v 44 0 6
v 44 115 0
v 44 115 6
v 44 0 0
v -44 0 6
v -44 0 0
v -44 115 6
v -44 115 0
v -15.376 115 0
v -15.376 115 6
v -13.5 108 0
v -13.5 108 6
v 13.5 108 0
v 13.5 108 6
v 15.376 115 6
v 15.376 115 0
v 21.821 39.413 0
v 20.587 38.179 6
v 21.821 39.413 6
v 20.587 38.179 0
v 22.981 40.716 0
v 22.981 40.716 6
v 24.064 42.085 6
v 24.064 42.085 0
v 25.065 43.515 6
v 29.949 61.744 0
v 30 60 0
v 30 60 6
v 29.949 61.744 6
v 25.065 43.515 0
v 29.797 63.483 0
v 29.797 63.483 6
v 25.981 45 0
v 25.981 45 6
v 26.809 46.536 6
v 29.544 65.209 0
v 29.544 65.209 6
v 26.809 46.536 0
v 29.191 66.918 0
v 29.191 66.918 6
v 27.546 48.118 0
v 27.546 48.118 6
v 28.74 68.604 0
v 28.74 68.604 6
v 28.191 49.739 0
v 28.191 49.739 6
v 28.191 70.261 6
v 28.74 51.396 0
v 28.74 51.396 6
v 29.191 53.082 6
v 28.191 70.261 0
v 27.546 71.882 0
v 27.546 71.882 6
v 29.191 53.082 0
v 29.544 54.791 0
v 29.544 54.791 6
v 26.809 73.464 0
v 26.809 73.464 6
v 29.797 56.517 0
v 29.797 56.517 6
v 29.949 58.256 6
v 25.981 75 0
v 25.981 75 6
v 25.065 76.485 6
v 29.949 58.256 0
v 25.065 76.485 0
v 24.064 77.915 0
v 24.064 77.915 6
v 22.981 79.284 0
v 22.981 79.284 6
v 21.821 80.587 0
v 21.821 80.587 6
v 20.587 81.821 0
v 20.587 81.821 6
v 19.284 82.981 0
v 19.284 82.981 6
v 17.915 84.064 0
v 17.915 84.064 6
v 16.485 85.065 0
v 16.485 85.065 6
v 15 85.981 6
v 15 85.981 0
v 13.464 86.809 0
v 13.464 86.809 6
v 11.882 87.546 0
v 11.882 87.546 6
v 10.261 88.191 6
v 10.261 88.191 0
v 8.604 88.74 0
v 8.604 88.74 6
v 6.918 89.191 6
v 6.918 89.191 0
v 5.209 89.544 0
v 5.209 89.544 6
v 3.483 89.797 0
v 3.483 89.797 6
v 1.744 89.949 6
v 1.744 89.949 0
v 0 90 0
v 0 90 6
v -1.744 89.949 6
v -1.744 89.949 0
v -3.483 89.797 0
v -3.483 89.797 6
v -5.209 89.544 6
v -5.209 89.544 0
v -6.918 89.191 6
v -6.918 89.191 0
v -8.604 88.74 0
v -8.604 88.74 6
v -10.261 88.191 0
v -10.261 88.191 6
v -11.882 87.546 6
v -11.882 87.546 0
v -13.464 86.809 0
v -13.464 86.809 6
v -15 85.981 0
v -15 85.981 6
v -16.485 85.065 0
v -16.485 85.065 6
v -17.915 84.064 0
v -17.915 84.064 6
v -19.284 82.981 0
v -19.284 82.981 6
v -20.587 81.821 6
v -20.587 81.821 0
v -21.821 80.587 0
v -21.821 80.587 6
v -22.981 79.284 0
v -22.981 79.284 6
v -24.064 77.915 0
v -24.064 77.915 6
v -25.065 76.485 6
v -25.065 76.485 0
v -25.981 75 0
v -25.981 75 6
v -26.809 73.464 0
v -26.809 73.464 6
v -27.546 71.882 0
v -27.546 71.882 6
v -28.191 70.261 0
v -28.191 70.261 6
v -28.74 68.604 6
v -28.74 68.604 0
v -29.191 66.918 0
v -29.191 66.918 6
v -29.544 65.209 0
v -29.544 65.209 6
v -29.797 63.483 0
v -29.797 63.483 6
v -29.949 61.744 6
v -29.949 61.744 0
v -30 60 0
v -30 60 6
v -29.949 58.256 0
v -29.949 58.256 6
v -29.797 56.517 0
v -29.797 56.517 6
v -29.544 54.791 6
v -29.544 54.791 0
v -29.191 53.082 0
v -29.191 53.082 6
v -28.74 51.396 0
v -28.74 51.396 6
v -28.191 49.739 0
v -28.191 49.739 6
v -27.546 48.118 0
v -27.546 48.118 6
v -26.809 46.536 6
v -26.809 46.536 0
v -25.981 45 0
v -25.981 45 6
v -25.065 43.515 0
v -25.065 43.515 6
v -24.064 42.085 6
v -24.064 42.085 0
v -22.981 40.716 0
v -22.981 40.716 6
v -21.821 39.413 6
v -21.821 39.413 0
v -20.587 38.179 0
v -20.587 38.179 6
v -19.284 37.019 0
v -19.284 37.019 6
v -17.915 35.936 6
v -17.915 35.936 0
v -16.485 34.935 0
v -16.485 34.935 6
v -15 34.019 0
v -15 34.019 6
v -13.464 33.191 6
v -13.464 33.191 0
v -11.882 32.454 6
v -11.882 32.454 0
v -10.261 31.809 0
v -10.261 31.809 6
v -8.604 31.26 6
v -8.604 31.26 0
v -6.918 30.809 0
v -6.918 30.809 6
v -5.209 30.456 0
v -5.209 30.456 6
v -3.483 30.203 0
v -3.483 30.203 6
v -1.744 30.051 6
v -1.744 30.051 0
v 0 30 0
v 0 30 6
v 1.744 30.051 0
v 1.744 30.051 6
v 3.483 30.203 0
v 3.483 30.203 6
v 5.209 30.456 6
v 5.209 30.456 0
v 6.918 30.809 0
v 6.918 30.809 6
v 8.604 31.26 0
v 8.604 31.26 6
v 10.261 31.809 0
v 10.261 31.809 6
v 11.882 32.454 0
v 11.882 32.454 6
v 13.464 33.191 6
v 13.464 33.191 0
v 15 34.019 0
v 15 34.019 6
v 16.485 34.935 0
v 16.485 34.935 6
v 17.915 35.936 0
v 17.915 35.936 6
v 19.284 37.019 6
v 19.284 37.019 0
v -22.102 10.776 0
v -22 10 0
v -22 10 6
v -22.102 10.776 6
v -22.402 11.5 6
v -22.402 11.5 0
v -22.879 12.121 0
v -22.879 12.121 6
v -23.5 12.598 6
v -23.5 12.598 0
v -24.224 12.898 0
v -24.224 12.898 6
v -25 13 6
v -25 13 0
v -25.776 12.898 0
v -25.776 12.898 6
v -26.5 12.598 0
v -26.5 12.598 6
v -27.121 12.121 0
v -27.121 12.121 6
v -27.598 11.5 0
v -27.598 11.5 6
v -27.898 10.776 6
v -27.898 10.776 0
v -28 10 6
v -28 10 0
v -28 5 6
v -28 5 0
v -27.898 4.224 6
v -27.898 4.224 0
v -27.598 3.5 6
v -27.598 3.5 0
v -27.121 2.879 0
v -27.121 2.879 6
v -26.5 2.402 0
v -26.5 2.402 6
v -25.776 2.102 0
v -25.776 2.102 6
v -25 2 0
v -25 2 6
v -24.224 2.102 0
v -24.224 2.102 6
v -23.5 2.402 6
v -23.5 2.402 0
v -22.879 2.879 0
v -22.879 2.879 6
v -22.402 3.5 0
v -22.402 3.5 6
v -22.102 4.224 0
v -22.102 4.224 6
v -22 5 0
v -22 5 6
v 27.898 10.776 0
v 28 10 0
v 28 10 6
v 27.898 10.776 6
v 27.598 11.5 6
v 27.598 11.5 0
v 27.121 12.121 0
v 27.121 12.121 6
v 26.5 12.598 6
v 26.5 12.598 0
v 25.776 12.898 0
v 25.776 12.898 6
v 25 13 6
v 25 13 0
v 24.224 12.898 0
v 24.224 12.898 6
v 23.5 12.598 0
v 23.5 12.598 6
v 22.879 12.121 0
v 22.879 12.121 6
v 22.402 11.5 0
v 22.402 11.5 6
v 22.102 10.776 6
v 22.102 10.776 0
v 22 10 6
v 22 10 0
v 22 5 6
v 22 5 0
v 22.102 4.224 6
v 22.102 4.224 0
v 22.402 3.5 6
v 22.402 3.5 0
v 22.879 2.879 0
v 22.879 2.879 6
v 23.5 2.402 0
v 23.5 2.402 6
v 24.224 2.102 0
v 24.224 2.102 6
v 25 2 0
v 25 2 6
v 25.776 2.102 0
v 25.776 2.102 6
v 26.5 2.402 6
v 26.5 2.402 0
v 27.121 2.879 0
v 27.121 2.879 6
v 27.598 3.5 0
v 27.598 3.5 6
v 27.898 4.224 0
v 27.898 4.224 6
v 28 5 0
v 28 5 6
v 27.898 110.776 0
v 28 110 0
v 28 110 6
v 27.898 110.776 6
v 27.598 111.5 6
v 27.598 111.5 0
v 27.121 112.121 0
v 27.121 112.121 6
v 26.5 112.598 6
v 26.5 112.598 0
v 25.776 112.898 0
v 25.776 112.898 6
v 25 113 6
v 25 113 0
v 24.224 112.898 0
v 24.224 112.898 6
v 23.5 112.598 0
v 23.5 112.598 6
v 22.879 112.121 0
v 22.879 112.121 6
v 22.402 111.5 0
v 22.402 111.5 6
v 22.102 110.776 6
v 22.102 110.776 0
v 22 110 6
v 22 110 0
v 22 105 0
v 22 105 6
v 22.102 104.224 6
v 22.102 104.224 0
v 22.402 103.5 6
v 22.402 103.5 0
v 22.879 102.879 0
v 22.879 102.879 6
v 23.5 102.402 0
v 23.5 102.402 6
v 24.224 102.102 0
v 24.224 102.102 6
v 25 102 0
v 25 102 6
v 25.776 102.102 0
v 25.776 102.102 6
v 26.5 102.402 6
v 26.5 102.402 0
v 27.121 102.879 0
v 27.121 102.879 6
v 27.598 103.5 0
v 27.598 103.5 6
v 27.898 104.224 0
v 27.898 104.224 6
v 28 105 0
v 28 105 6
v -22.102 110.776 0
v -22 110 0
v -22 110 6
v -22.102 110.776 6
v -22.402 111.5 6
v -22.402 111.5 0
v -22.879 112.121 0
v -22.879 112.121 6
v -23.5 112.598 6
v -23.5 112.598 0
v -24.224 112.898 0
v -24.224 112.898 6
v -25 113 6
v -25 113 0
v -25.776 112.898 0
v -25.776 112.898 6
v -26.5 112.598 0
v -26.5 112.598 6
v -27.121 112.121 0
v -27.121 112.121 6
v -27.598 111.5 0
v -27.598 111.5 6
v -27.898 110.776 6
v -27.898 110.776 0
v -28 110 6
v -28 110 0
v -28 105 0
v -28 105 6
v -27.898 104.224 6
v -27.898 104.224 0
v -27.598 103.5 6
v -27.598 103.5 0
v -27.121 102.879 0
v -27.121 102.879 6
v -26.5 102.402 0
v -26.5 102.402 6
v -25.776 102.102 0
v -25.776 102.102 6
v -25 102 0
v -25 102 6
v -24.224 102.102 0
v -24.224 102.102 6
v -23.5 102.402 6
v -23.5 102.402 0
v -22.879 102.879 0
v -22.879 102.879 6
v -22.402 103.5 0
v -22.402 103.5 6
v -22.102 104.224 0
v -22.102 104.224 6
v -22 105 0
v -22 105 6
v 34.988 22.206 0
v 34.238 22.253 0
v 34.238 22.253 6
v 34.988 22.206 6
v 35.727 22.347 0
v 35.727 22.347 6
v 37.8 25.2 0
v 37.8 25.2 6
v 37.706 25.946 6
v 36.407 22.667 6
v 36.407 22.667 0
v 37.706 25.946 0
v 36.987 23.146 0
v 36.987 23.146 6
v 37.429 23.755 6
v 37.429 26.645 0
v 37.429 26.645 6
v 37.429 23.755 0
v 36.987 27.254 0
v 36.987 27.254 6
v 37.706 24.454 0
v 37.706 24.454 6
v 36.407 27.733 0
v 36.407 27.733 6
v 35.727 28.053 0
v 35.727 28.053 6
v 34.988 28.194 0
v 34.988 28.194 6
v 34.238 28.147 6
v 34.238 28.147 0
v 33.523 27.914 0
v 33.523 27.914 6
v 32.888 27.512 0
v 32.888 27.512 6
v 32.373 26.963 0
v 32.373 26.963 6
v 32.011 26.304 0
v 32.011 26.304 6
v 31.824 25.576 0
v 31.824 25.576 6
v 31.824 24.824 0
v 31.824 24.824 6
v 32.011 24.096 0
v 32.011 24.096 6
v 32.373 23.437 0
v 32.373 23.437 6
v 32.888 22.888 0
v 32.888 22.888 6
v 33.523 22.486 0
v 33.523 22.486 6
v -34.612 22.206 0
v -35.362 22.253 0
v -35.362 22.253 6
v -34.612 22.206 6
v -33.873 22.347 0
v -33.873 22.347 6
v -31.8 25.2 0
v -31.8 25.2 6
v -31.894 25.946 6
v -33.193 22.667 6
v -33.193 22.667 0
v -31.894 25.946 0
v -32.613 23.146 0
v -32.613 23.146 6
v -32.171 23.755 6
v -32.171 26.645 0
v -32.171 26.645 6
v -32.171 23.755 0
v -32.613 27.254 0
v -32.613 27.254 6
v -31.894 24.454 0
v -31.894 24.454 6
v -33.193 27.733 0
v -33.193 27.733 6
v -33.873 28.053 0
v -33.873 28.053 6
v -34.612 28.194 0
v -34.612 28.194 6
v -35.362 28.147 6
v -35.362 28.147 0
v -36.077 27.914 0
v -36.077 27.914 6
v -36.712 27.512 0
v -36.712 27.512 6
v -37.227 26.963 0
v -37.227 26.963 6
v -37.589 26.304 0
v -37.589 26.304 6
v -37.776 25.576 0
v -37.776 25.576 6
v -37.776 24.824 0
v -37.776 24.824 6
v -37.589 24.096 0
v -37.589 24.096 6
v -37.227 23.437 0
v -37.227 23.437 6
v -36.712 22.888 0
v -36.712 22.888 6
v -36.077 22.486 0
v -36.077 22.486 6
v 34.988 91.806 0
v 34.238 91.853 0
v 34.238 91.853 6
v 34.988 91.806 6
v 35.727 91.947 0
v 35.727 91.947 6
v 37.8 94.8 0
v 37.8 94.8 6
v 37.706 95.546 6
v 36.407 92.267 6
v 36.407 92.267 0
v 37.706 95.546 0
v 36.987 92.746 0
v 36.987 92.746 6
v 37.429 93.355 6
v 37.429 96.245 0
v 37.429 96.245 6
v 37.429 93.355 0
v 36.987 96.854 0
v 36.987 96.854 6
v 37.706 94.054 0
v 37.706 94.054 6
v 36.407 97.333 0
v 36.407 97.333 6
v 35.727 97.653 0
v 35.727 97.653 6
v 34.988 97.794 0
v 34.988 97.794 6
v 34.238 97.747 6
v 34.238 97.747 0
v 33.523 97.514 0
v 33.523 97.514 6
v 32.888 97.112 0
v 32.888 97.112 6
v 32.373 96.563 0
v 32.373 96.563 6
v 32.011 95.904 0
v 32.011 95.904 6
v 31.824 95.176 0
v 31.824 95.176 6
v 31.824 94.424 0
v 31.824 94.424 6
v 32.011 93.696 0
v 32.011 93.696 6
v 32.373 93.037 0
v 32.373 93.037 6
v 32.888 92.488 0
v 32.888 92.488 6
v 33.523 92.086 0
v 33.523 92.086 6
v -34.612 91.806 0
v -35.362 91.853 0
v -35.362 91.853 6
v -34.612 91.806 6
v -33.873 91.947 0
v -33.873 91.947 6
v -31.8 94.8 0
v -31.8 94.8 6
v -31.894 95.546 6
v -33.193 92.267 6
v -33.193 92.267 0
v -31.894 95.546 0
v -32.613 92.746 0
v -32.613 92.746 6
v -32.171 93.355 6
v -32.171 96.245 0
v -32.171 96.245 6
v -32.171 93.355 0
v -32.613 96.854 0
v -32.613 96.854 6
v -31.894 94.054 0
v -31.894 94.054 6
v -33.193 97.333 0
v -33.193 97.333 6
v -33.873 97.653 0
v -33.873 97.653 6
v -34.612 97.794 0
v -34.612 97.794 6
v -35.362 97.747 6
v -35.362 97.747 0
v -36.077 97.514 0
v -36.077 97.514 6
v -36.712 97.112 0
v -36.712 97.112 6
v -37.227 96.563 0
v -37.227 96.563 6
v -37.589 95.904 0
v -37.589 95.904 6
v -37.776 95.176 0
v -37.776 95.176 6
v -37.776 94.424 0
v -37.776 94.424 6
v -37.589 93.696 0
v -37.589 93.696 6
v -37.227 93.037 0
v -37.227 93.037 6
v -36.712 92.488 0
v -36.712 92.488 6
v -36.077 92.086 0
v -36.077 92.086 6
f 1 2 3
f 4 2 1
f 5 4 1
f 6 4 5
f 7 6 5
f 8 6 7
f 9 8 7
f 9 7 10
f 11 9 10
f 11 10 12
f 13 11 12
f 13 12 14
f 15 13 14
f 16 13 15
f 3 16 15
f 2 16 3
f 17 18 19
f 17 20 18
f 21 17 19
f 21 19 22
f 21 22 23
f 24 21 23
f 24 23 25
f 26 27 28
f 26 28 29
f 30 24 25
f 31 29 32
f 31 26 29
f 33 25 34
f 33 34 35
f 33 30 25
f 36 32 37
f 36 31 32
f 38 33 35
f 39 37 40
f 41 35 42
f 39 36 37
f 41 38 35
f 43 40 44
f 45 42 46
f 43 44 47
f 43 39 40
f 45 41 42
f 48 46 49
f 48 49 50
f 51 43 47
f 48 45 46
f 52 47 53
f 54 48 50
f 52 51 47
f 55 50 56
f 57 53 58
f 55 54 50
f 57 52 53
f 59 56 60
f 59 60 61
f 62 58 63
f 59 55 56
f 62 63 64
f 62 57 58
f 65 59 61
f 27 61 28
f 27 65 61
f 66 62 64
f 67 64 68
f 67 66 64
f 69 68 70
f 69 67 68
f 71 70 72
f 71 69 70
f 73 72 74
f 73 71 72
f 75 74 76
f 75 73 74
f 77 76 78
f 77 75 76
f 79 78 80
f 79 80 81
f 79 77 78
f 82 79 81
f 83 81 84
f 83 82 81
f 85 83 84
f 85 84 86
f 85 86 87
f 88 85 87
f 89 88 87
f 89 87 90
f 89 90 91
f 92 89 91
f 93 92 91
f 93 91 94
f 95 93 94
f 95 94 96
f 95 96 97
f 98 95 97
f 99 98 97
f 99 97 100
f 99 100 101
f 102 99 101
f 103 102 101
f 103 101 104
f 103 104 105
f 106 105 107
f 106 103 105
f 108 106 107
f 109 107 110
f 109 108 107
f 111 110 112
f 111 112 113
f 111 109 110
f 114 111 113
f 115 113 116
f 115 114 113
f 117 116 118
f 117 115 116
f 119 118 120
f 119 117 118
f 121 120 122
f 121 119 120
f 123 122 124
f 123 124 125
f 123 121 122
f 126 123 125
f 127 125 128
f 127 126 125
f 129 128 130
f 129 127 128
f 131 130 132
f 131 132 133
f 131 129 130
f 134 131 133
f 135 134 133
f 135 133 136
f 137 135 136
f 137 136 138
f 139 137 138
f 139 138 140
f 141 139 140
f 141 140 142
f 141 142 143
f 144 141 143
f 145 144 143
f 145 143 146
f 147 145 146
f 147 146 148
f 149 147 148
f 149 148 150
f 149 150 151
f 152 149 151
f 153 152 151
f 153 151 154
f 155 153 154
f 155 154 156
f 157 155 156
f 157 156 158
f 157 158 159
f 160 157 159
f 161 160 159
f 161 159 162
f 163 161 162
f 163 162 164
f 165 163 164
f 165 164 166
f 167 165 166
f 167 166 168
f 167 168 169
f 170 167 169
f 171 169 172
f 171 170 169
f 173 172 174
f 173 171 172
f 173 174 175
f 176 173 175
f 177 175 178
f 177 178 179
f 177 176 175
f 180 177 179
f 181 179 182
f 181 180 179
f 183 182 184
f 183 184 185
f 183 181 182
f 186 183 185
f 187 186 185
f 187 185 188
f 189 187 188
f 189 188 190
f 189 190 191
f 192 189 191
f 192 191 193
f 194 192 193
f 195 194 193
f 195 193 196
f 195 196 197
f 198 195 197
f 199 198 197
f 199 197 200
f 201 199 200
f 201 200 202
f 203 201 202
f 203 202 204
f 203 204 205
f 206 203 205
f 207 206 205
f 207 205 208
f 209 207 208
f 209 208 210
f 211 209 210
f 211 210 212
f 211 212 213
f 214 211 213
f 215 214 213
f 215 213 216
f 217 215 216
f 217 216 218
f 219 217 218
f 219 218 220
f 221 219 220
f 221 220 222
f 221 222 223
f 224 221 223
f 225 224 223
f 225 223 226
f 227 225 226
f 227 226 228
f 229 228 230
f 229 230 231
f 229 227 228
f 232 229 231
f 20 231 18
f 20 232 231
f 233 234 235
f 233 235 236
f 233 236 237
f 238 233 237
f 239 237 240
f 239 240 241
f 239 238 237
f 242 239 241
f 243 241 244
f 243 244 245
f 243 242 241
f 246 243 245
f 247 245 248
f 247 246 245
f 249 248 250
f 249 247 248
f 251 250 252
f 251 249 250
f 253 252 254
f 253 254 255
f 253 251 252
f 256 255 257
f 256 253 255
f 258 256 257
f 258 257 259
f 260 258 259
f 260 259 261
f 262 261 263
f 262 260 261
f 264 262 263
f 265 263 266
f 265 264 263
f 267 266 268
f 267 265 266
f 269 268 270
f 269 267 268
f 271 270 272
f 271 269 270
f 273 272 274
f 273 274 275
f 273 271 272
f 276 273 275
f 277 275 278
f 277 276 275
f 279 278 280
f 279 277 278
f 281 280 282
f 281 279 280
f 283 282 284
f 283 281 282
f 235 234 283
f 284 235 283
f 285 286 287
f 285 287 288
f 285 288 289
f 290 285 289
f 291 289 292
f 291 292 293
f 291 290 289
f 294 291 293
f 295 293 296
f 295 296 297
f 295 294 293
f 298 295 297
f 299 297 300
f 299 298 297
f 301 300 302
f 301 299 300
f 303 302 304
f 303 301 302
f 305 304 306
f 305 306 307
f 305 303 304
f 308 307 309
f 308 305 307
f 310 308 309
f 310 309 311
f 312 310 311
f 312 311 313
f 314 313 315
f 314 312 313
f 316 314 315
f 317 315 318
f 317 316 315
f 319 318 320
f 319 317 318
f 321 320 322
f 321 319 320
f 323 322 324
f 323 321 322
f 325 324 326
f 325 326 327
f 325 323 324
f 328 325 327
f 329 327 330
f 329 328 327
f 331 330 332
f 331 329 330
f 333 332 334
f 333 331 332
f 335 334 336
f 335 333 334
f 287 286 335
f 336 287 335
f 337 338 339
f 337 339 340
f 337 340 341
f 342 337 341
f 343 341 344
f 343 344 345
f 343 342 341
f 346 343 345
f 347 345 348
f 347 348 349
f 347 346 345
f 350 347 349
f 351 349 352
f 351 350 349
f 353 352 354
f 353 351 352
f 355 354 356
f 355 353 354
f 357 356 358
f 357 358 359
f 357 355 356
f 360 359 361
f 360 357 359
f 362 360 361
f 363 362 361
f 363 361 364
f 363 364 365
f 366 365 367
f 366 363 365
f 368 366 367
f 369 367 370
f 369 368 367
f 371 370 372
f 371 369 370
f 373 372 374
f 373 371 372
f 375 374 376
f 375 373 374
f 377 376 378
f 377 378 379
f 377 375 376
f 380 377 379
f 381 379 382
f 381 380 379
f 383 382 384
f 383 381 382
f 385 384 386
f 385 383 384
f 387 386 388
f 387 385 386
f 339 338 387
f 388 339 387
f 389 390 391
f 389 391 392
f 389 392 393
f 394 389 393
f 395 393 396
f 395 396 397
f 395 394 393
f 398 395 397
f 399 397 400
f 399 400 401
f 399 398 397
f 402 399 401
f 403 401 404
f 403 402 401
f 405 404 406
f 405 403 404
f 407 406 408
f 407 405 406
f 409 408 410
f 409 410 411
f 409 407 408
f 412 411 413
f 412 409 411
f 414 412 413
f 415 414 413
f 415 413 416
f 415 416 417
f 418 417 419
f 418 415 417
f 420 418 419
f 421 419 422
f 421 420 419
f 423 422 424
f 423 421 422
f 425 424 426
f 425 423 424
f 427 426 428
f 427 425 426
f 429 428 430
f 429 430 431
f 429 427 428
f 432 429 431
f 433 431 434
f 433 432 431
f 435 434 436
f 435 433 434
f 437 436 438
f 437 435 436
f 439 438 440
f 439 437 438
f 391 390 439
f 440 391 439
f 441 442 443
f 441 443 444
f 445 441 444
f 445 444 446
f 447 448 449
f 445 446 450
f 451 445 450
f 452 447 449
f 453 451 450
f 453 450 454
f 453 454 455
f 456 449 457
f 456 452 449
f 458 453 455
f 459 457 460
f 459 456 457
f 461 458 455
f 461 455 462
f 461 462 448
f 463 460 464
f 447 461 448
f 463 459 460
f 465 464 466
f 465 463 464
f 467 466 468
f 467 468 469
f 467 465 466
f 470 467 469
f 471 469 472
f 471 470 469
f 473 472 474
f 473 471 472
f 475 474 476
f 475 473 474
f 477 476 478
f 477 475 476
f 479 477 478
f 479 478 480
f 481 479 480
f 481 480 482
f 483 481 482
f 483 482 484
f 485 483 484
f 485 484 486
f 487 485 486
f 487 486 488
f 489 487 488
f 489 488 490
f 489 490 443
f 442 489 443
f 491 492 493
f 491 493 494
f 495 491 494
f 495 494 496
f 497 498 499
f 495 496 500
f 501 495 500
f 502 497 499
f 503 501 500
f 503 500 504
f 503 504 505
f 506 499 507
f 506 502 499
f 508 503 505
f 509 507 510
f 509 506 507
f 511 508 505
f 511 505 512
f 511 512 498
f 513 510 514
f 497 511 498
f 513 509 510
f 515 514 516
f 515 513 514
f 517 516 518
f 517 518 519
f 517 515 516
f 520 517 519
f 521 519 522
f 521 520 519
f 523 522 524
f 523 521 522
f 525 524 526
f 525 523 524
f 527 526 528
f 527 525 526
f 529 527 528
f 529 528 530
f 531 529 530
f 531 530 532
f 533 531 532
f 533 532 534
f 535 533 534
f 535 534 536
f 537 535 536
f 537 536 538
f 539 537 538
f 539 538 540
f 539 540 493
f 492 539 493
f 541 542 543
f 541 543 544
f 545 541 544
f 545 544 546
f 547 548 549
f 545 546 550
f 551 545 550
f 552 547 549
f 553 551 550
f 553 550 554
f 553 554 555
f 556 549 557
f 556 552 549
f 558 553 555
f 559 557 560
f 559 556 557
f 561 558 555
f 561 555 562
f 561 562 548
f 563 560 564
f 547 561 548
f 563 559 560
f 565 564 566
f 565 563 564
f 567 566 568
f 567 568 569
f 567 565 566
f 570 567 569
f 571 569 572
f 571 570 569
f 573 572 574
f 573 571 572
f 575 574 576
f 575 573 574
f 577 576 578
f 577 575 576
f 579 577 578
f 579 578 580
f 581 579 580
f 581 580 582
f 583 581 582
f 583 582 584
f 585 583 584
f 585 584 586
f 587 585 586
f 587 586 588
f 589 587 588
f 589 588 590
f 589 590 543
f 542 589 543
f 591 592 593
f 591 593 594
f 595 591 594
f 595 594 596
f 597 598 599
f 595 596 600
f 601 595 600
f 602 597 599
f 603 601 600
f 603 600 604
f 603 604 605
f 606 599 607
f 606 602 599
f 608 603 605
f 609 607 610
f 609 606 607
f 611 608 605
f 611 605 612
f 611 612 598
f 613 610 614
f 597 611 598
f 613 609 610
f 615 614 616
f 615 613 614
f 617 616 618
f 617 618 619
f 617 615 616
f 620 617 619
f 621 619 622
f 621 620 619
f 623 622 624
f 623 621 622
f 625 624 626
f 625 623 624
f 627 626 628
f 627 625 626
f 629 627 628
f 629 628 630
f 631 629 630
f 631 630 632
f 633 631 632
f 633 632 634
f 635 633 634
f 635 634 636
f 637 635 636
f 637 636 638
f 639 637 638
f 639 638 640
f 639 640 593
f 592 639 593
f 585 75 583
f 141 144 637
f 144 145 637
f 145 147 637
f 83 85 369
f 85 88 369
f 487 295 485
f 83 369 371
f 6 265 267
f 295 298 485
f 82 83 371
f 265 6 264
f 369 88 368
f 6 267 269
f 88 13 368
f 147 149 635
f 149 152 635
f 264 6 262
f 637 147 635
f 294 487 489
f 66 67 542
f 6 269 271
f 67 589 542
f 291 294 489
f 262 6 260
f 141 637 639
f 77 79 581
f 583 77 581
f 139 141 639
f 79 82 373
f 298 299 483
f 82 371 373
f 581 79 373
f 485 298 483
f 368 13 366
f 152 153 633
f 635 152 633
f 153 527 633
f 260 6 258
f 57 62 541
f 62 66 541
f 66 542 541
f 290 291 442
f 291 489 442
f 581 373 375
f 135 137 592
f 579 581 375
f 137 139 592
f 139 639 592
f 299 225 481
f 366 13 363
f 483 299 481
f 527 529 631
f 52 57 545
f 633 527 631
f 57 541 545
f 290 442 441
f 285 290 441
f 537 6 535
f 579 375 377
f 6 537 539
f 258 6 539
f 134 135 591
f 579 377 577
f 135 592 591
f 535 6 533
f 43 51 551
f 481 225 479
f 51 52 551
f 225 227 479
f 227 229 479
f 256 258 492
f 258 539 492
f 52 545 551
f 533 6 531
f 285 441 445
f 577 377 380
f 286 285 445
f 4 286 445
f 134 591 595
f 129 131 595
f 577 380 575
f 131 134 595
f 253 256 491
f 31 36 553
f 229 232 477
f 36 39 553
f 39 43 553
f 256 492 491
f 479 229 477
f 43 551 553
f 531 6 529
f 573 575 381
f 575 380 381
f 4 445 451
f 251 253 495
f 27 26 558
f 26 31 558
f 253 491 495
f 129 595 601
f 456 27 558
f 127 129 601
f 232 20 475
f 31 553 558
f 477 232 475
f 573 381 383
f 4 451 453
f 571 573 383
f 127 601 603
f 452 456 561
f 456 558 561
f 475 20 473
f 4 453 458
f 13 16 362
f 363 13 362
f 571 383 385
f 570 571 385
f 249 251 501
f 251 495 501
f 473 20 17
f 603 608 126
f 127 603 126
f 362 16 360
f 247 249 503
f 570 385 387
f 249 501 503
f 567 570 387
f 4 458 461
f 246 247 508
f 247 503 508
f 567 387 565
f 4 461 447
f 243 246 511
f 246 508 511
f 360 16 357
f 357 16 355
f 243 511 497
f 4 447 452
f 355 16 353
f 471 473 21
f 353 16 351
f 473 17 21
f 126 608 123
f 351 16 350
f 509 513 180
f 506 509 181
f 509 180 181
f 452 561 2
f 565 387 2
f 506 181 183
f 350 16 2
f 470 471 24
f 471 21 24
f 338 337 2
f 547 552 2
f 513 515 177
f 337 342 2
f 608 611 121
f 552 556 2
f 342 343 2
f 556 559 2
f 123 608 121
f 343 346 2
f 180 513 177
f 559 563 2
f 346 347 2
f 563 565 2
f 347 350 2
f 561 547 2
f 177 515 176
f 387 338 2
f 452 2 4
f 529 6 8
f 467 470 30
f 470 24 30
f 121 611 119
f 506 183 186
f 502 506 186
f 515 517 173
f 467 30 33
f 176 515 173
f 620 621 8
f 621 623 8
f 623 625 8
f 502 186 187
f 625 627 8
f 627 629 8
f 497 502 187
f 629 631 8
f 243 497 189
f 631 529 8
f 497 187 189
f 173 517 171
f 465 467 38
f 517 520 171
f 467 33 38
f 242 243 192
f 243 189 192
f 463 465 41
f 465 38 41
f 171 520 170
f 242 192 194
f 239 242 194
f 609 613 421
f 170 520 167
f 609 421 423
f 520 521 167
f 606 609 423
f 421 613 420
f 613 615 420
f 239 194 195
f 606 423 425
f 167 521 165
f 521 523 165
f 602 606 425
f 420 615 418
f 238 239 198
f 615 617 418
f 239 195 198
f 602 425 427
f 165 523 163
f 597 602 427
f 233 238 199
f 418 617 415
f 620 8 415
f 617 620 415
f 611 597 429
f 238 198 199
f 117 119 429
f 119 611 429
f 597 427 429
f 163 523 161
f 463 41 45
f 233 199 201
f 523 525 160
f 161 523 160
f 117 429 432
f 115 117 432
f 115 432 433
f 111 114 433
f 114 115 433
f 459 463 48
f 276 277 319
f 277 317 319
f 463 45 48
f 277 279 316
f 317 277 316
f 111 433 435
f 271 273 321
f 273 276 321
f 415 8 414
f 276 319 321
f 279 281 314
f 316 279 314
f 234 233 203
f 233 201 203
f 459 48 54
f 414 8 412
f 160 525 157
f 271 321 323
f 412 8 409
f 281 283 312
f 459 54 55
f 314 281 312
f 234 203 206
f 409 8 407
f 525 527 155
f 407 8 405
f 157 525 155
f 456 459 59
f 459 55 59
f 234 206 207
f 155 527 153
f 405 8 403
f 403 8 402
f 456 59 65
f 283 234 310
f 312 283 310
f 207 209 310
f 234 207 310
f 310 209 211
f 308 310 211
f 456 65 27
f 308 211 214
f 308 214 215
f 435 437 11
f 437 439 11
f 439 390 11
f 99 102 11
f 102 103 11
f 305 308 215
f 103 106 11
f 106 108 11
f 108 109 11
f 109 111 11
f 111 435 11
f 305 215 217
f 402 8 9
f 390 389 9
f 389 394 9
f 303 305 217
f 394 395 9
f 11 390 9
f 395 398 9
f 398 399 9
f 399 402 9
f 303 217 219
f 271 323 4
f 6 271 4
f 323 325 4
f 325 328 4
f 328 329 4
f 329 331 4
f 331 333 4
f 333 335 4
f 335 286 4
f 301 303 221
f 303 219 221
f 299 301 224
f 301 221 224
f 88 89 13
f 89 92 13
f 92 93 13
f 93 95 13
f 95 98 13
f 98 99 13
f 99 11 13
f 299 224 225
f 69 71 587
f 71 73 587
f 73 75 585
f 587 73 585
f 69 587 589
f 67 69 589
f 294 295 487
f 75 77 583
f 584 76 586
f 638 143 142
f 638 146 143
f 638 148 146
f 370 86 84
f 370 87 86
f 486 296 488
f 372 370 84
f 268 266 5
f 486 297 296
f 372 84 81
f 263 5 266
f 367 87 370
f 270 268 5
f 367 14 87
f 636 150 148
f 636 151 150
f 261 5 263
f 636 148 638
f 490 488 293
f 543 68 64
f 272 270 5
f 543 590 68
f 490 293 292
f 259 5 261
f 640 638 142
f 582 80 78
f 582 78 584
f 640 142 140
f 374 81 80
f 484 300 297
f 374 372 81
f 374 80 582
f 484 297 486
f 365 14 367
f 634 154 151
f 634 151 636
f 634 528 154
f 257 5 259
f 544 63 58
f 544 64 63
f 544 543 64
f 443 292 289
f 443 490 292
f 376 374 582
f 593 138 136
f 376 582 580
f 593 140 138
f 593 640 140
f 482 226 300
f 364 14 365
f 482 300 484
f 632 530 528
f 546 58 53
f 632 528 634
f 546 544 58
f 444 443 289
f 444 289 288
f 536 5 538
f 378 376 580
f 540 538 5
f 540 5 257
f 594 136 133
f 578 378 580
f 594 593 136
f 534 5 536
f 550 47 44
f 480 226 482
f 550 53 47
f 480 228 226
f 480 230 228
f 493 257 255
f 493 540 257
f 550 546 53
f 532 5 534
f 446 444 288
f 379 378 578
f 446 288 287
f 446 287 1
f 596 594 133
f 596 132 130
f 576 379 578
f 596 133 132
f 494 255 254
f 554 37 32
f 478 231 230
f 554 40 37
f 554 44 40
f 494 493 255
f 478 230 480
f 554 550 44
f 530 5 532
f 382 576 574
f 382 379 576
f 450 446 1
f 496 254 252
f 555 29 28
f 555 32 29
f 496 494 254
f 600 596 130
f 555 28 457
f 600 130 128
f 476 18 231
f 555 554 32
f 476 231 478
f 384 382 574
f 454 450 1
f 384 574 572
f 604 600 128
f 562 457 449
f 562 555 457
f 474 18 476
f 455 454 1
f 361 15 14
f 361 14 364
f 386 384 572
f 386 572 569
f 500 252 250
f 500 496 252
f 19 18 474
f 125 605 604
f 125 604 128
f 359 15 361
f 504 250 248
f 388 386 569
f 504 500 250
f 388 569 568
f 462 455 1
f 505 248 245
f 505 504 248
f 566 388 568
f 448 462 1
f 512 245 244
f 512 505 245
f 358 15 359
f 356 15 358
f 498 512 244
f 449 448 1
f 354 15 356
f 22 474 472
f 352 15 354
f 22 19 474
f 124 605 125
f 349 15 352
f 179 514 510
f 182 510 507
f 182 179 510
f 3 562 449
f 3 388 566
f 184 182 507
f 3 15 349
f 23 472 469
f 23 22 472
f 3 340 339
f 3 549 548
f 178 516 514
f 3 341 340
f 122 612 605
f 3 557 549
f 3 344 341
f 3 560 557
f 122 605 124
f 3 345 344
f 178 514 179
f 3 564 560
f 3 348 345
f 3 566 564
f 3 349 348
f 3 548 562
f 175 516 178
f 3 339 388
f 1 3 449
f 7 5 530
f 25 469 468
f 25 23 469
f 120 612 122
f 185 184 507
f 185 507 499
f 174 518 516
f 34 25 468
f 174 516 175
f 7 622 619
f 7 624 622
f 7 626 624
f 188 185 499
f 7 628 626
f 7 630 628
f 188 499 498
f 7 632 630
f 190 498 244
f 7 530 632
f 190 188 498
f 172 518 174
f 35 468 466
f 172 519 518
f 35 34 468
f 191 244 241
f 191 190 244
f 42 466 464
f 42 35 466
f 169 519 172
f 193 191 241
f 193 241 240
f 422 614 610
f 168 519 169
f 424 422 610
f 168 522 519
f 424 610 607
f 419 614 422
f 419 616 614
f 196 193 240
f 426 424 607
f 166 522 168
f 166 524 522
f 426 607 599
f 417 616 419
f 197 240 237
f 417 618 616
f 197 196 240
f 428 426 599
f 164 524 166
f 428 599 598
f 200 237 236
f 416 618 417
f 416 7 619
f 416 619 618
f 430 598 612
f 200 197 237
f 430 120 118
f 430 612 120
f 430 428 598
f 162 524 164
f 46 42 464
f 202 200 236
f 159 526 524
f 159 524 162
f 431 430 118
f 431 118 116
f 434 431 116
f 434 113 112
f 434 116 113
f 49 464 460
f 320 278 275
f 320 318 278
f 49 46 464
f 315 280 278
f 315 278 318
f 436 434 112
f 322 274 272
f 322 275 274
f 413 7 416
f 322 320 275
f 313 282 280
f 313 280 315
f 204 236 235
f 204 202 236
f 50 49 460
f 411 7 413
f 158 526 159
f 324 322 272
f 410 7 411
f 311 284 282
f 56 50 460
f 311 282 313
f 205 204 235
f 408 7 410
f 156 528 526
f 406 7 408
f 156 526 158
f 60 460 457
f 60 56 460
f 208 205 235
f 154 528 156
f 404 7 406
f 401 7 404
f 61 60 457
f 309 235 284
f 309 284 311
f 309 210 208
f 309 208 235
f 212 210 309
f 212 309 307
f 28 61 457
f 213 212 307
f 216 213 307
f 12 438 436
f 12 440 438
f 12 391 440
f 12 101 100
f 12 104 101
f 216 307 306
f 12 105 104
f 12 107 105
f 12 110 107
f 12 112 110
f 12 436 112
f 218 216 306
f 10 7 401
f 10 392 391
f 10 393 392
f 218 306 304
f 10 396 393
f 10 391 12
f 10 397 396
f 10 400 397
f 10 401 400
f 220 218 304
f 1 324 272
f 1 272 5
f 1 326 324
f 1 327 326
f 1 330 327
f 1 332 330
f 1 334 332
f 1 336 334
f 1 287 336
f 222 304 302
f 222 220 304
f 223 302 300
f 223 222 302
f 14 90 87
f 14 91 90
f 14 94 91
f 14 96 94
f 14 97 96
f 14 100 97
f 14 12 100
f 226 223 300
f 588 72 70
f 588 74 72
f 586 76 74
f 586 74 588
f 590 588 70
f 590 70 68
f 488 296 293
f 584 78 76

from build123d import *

# Parameters (mm, degrees)
SKETCH_R   = 30
SKETCH_R_2 = 3
PAD_DEPTH  = 6


with BuildPart() as part:
    # Sketch → Pad (new body)
    with BuildSketch(Plane.XY):
        Polygon((44, 115), (44, 0), (-44, 0), (-44, 115), (-15.375644, 115), (-13.5, 108), (13.5, 108), (15.375644, 115), align=None)
        with Locations((0, 60)):
            Circle(SKETCH_R, mode=Mode.SUBTRACT)
        with Locations((-34.8, 94.8)):
            Circle(SKETCH_R_2, mode=Mode.SUBTRACT)
        with Locations((34.8, 94.8)):
            Circle(SKETCH_R_2, mode=Mode.SUBTRACT)
        with Locations((-34.8, 25.2)):
            Circle(SKETCH_R_2, mode=Mode.SUBTRACT)
        with Locations((34.8, 25.2)):
            Circle(SKETCH_R_2, mode=Mode.SUBTRACT)
        with BuildLine():
            ThreePointArc((-22, 110), (-25, 113), (-28, 110))
            Line((-28, 110), (-28, 105))
            ThreePointArc((-28, 105), (-25, 102), (-22, 105))
            Line((-22, 110), (-22, 105))
        make_face(mode=Mode.SUBTRACT)
        with BuildLine():
            ThreePointArc((28, 110), (25, 113), (22, 110))
            Line((22, 110), (22, 105))
            ThreePointArc((22, 105), (25, 102), (28, 105))
            Line((28, 110), (28, 105))
        make_face(mode=Mode.SUBTRACT)
        with BuildLine():
            ThreePointArc((28, 10), (25, 13), (22, 10))
            Line((22, 10), (22, 5))
            ThreePointArc((22, 5), (25, 2), (28, 5))
            Line((28, 10), (28, 5))
        make_face(mode=Mode.SUBTRACT)
        with BuildLine():
            ThreePointArc((-22, 10), (-25, 13), (-28, 10))
            Line((-28, 10), (-28, 5))
            ThreePointArc((-28, 5), (-25, 2), (-22, 5))
            Line((-22, 10), (-22, 5))
        make_face(mode=Mode.SUBTRACT)
    extrude(amount=PAD_DEPTH)


solid = part.part
